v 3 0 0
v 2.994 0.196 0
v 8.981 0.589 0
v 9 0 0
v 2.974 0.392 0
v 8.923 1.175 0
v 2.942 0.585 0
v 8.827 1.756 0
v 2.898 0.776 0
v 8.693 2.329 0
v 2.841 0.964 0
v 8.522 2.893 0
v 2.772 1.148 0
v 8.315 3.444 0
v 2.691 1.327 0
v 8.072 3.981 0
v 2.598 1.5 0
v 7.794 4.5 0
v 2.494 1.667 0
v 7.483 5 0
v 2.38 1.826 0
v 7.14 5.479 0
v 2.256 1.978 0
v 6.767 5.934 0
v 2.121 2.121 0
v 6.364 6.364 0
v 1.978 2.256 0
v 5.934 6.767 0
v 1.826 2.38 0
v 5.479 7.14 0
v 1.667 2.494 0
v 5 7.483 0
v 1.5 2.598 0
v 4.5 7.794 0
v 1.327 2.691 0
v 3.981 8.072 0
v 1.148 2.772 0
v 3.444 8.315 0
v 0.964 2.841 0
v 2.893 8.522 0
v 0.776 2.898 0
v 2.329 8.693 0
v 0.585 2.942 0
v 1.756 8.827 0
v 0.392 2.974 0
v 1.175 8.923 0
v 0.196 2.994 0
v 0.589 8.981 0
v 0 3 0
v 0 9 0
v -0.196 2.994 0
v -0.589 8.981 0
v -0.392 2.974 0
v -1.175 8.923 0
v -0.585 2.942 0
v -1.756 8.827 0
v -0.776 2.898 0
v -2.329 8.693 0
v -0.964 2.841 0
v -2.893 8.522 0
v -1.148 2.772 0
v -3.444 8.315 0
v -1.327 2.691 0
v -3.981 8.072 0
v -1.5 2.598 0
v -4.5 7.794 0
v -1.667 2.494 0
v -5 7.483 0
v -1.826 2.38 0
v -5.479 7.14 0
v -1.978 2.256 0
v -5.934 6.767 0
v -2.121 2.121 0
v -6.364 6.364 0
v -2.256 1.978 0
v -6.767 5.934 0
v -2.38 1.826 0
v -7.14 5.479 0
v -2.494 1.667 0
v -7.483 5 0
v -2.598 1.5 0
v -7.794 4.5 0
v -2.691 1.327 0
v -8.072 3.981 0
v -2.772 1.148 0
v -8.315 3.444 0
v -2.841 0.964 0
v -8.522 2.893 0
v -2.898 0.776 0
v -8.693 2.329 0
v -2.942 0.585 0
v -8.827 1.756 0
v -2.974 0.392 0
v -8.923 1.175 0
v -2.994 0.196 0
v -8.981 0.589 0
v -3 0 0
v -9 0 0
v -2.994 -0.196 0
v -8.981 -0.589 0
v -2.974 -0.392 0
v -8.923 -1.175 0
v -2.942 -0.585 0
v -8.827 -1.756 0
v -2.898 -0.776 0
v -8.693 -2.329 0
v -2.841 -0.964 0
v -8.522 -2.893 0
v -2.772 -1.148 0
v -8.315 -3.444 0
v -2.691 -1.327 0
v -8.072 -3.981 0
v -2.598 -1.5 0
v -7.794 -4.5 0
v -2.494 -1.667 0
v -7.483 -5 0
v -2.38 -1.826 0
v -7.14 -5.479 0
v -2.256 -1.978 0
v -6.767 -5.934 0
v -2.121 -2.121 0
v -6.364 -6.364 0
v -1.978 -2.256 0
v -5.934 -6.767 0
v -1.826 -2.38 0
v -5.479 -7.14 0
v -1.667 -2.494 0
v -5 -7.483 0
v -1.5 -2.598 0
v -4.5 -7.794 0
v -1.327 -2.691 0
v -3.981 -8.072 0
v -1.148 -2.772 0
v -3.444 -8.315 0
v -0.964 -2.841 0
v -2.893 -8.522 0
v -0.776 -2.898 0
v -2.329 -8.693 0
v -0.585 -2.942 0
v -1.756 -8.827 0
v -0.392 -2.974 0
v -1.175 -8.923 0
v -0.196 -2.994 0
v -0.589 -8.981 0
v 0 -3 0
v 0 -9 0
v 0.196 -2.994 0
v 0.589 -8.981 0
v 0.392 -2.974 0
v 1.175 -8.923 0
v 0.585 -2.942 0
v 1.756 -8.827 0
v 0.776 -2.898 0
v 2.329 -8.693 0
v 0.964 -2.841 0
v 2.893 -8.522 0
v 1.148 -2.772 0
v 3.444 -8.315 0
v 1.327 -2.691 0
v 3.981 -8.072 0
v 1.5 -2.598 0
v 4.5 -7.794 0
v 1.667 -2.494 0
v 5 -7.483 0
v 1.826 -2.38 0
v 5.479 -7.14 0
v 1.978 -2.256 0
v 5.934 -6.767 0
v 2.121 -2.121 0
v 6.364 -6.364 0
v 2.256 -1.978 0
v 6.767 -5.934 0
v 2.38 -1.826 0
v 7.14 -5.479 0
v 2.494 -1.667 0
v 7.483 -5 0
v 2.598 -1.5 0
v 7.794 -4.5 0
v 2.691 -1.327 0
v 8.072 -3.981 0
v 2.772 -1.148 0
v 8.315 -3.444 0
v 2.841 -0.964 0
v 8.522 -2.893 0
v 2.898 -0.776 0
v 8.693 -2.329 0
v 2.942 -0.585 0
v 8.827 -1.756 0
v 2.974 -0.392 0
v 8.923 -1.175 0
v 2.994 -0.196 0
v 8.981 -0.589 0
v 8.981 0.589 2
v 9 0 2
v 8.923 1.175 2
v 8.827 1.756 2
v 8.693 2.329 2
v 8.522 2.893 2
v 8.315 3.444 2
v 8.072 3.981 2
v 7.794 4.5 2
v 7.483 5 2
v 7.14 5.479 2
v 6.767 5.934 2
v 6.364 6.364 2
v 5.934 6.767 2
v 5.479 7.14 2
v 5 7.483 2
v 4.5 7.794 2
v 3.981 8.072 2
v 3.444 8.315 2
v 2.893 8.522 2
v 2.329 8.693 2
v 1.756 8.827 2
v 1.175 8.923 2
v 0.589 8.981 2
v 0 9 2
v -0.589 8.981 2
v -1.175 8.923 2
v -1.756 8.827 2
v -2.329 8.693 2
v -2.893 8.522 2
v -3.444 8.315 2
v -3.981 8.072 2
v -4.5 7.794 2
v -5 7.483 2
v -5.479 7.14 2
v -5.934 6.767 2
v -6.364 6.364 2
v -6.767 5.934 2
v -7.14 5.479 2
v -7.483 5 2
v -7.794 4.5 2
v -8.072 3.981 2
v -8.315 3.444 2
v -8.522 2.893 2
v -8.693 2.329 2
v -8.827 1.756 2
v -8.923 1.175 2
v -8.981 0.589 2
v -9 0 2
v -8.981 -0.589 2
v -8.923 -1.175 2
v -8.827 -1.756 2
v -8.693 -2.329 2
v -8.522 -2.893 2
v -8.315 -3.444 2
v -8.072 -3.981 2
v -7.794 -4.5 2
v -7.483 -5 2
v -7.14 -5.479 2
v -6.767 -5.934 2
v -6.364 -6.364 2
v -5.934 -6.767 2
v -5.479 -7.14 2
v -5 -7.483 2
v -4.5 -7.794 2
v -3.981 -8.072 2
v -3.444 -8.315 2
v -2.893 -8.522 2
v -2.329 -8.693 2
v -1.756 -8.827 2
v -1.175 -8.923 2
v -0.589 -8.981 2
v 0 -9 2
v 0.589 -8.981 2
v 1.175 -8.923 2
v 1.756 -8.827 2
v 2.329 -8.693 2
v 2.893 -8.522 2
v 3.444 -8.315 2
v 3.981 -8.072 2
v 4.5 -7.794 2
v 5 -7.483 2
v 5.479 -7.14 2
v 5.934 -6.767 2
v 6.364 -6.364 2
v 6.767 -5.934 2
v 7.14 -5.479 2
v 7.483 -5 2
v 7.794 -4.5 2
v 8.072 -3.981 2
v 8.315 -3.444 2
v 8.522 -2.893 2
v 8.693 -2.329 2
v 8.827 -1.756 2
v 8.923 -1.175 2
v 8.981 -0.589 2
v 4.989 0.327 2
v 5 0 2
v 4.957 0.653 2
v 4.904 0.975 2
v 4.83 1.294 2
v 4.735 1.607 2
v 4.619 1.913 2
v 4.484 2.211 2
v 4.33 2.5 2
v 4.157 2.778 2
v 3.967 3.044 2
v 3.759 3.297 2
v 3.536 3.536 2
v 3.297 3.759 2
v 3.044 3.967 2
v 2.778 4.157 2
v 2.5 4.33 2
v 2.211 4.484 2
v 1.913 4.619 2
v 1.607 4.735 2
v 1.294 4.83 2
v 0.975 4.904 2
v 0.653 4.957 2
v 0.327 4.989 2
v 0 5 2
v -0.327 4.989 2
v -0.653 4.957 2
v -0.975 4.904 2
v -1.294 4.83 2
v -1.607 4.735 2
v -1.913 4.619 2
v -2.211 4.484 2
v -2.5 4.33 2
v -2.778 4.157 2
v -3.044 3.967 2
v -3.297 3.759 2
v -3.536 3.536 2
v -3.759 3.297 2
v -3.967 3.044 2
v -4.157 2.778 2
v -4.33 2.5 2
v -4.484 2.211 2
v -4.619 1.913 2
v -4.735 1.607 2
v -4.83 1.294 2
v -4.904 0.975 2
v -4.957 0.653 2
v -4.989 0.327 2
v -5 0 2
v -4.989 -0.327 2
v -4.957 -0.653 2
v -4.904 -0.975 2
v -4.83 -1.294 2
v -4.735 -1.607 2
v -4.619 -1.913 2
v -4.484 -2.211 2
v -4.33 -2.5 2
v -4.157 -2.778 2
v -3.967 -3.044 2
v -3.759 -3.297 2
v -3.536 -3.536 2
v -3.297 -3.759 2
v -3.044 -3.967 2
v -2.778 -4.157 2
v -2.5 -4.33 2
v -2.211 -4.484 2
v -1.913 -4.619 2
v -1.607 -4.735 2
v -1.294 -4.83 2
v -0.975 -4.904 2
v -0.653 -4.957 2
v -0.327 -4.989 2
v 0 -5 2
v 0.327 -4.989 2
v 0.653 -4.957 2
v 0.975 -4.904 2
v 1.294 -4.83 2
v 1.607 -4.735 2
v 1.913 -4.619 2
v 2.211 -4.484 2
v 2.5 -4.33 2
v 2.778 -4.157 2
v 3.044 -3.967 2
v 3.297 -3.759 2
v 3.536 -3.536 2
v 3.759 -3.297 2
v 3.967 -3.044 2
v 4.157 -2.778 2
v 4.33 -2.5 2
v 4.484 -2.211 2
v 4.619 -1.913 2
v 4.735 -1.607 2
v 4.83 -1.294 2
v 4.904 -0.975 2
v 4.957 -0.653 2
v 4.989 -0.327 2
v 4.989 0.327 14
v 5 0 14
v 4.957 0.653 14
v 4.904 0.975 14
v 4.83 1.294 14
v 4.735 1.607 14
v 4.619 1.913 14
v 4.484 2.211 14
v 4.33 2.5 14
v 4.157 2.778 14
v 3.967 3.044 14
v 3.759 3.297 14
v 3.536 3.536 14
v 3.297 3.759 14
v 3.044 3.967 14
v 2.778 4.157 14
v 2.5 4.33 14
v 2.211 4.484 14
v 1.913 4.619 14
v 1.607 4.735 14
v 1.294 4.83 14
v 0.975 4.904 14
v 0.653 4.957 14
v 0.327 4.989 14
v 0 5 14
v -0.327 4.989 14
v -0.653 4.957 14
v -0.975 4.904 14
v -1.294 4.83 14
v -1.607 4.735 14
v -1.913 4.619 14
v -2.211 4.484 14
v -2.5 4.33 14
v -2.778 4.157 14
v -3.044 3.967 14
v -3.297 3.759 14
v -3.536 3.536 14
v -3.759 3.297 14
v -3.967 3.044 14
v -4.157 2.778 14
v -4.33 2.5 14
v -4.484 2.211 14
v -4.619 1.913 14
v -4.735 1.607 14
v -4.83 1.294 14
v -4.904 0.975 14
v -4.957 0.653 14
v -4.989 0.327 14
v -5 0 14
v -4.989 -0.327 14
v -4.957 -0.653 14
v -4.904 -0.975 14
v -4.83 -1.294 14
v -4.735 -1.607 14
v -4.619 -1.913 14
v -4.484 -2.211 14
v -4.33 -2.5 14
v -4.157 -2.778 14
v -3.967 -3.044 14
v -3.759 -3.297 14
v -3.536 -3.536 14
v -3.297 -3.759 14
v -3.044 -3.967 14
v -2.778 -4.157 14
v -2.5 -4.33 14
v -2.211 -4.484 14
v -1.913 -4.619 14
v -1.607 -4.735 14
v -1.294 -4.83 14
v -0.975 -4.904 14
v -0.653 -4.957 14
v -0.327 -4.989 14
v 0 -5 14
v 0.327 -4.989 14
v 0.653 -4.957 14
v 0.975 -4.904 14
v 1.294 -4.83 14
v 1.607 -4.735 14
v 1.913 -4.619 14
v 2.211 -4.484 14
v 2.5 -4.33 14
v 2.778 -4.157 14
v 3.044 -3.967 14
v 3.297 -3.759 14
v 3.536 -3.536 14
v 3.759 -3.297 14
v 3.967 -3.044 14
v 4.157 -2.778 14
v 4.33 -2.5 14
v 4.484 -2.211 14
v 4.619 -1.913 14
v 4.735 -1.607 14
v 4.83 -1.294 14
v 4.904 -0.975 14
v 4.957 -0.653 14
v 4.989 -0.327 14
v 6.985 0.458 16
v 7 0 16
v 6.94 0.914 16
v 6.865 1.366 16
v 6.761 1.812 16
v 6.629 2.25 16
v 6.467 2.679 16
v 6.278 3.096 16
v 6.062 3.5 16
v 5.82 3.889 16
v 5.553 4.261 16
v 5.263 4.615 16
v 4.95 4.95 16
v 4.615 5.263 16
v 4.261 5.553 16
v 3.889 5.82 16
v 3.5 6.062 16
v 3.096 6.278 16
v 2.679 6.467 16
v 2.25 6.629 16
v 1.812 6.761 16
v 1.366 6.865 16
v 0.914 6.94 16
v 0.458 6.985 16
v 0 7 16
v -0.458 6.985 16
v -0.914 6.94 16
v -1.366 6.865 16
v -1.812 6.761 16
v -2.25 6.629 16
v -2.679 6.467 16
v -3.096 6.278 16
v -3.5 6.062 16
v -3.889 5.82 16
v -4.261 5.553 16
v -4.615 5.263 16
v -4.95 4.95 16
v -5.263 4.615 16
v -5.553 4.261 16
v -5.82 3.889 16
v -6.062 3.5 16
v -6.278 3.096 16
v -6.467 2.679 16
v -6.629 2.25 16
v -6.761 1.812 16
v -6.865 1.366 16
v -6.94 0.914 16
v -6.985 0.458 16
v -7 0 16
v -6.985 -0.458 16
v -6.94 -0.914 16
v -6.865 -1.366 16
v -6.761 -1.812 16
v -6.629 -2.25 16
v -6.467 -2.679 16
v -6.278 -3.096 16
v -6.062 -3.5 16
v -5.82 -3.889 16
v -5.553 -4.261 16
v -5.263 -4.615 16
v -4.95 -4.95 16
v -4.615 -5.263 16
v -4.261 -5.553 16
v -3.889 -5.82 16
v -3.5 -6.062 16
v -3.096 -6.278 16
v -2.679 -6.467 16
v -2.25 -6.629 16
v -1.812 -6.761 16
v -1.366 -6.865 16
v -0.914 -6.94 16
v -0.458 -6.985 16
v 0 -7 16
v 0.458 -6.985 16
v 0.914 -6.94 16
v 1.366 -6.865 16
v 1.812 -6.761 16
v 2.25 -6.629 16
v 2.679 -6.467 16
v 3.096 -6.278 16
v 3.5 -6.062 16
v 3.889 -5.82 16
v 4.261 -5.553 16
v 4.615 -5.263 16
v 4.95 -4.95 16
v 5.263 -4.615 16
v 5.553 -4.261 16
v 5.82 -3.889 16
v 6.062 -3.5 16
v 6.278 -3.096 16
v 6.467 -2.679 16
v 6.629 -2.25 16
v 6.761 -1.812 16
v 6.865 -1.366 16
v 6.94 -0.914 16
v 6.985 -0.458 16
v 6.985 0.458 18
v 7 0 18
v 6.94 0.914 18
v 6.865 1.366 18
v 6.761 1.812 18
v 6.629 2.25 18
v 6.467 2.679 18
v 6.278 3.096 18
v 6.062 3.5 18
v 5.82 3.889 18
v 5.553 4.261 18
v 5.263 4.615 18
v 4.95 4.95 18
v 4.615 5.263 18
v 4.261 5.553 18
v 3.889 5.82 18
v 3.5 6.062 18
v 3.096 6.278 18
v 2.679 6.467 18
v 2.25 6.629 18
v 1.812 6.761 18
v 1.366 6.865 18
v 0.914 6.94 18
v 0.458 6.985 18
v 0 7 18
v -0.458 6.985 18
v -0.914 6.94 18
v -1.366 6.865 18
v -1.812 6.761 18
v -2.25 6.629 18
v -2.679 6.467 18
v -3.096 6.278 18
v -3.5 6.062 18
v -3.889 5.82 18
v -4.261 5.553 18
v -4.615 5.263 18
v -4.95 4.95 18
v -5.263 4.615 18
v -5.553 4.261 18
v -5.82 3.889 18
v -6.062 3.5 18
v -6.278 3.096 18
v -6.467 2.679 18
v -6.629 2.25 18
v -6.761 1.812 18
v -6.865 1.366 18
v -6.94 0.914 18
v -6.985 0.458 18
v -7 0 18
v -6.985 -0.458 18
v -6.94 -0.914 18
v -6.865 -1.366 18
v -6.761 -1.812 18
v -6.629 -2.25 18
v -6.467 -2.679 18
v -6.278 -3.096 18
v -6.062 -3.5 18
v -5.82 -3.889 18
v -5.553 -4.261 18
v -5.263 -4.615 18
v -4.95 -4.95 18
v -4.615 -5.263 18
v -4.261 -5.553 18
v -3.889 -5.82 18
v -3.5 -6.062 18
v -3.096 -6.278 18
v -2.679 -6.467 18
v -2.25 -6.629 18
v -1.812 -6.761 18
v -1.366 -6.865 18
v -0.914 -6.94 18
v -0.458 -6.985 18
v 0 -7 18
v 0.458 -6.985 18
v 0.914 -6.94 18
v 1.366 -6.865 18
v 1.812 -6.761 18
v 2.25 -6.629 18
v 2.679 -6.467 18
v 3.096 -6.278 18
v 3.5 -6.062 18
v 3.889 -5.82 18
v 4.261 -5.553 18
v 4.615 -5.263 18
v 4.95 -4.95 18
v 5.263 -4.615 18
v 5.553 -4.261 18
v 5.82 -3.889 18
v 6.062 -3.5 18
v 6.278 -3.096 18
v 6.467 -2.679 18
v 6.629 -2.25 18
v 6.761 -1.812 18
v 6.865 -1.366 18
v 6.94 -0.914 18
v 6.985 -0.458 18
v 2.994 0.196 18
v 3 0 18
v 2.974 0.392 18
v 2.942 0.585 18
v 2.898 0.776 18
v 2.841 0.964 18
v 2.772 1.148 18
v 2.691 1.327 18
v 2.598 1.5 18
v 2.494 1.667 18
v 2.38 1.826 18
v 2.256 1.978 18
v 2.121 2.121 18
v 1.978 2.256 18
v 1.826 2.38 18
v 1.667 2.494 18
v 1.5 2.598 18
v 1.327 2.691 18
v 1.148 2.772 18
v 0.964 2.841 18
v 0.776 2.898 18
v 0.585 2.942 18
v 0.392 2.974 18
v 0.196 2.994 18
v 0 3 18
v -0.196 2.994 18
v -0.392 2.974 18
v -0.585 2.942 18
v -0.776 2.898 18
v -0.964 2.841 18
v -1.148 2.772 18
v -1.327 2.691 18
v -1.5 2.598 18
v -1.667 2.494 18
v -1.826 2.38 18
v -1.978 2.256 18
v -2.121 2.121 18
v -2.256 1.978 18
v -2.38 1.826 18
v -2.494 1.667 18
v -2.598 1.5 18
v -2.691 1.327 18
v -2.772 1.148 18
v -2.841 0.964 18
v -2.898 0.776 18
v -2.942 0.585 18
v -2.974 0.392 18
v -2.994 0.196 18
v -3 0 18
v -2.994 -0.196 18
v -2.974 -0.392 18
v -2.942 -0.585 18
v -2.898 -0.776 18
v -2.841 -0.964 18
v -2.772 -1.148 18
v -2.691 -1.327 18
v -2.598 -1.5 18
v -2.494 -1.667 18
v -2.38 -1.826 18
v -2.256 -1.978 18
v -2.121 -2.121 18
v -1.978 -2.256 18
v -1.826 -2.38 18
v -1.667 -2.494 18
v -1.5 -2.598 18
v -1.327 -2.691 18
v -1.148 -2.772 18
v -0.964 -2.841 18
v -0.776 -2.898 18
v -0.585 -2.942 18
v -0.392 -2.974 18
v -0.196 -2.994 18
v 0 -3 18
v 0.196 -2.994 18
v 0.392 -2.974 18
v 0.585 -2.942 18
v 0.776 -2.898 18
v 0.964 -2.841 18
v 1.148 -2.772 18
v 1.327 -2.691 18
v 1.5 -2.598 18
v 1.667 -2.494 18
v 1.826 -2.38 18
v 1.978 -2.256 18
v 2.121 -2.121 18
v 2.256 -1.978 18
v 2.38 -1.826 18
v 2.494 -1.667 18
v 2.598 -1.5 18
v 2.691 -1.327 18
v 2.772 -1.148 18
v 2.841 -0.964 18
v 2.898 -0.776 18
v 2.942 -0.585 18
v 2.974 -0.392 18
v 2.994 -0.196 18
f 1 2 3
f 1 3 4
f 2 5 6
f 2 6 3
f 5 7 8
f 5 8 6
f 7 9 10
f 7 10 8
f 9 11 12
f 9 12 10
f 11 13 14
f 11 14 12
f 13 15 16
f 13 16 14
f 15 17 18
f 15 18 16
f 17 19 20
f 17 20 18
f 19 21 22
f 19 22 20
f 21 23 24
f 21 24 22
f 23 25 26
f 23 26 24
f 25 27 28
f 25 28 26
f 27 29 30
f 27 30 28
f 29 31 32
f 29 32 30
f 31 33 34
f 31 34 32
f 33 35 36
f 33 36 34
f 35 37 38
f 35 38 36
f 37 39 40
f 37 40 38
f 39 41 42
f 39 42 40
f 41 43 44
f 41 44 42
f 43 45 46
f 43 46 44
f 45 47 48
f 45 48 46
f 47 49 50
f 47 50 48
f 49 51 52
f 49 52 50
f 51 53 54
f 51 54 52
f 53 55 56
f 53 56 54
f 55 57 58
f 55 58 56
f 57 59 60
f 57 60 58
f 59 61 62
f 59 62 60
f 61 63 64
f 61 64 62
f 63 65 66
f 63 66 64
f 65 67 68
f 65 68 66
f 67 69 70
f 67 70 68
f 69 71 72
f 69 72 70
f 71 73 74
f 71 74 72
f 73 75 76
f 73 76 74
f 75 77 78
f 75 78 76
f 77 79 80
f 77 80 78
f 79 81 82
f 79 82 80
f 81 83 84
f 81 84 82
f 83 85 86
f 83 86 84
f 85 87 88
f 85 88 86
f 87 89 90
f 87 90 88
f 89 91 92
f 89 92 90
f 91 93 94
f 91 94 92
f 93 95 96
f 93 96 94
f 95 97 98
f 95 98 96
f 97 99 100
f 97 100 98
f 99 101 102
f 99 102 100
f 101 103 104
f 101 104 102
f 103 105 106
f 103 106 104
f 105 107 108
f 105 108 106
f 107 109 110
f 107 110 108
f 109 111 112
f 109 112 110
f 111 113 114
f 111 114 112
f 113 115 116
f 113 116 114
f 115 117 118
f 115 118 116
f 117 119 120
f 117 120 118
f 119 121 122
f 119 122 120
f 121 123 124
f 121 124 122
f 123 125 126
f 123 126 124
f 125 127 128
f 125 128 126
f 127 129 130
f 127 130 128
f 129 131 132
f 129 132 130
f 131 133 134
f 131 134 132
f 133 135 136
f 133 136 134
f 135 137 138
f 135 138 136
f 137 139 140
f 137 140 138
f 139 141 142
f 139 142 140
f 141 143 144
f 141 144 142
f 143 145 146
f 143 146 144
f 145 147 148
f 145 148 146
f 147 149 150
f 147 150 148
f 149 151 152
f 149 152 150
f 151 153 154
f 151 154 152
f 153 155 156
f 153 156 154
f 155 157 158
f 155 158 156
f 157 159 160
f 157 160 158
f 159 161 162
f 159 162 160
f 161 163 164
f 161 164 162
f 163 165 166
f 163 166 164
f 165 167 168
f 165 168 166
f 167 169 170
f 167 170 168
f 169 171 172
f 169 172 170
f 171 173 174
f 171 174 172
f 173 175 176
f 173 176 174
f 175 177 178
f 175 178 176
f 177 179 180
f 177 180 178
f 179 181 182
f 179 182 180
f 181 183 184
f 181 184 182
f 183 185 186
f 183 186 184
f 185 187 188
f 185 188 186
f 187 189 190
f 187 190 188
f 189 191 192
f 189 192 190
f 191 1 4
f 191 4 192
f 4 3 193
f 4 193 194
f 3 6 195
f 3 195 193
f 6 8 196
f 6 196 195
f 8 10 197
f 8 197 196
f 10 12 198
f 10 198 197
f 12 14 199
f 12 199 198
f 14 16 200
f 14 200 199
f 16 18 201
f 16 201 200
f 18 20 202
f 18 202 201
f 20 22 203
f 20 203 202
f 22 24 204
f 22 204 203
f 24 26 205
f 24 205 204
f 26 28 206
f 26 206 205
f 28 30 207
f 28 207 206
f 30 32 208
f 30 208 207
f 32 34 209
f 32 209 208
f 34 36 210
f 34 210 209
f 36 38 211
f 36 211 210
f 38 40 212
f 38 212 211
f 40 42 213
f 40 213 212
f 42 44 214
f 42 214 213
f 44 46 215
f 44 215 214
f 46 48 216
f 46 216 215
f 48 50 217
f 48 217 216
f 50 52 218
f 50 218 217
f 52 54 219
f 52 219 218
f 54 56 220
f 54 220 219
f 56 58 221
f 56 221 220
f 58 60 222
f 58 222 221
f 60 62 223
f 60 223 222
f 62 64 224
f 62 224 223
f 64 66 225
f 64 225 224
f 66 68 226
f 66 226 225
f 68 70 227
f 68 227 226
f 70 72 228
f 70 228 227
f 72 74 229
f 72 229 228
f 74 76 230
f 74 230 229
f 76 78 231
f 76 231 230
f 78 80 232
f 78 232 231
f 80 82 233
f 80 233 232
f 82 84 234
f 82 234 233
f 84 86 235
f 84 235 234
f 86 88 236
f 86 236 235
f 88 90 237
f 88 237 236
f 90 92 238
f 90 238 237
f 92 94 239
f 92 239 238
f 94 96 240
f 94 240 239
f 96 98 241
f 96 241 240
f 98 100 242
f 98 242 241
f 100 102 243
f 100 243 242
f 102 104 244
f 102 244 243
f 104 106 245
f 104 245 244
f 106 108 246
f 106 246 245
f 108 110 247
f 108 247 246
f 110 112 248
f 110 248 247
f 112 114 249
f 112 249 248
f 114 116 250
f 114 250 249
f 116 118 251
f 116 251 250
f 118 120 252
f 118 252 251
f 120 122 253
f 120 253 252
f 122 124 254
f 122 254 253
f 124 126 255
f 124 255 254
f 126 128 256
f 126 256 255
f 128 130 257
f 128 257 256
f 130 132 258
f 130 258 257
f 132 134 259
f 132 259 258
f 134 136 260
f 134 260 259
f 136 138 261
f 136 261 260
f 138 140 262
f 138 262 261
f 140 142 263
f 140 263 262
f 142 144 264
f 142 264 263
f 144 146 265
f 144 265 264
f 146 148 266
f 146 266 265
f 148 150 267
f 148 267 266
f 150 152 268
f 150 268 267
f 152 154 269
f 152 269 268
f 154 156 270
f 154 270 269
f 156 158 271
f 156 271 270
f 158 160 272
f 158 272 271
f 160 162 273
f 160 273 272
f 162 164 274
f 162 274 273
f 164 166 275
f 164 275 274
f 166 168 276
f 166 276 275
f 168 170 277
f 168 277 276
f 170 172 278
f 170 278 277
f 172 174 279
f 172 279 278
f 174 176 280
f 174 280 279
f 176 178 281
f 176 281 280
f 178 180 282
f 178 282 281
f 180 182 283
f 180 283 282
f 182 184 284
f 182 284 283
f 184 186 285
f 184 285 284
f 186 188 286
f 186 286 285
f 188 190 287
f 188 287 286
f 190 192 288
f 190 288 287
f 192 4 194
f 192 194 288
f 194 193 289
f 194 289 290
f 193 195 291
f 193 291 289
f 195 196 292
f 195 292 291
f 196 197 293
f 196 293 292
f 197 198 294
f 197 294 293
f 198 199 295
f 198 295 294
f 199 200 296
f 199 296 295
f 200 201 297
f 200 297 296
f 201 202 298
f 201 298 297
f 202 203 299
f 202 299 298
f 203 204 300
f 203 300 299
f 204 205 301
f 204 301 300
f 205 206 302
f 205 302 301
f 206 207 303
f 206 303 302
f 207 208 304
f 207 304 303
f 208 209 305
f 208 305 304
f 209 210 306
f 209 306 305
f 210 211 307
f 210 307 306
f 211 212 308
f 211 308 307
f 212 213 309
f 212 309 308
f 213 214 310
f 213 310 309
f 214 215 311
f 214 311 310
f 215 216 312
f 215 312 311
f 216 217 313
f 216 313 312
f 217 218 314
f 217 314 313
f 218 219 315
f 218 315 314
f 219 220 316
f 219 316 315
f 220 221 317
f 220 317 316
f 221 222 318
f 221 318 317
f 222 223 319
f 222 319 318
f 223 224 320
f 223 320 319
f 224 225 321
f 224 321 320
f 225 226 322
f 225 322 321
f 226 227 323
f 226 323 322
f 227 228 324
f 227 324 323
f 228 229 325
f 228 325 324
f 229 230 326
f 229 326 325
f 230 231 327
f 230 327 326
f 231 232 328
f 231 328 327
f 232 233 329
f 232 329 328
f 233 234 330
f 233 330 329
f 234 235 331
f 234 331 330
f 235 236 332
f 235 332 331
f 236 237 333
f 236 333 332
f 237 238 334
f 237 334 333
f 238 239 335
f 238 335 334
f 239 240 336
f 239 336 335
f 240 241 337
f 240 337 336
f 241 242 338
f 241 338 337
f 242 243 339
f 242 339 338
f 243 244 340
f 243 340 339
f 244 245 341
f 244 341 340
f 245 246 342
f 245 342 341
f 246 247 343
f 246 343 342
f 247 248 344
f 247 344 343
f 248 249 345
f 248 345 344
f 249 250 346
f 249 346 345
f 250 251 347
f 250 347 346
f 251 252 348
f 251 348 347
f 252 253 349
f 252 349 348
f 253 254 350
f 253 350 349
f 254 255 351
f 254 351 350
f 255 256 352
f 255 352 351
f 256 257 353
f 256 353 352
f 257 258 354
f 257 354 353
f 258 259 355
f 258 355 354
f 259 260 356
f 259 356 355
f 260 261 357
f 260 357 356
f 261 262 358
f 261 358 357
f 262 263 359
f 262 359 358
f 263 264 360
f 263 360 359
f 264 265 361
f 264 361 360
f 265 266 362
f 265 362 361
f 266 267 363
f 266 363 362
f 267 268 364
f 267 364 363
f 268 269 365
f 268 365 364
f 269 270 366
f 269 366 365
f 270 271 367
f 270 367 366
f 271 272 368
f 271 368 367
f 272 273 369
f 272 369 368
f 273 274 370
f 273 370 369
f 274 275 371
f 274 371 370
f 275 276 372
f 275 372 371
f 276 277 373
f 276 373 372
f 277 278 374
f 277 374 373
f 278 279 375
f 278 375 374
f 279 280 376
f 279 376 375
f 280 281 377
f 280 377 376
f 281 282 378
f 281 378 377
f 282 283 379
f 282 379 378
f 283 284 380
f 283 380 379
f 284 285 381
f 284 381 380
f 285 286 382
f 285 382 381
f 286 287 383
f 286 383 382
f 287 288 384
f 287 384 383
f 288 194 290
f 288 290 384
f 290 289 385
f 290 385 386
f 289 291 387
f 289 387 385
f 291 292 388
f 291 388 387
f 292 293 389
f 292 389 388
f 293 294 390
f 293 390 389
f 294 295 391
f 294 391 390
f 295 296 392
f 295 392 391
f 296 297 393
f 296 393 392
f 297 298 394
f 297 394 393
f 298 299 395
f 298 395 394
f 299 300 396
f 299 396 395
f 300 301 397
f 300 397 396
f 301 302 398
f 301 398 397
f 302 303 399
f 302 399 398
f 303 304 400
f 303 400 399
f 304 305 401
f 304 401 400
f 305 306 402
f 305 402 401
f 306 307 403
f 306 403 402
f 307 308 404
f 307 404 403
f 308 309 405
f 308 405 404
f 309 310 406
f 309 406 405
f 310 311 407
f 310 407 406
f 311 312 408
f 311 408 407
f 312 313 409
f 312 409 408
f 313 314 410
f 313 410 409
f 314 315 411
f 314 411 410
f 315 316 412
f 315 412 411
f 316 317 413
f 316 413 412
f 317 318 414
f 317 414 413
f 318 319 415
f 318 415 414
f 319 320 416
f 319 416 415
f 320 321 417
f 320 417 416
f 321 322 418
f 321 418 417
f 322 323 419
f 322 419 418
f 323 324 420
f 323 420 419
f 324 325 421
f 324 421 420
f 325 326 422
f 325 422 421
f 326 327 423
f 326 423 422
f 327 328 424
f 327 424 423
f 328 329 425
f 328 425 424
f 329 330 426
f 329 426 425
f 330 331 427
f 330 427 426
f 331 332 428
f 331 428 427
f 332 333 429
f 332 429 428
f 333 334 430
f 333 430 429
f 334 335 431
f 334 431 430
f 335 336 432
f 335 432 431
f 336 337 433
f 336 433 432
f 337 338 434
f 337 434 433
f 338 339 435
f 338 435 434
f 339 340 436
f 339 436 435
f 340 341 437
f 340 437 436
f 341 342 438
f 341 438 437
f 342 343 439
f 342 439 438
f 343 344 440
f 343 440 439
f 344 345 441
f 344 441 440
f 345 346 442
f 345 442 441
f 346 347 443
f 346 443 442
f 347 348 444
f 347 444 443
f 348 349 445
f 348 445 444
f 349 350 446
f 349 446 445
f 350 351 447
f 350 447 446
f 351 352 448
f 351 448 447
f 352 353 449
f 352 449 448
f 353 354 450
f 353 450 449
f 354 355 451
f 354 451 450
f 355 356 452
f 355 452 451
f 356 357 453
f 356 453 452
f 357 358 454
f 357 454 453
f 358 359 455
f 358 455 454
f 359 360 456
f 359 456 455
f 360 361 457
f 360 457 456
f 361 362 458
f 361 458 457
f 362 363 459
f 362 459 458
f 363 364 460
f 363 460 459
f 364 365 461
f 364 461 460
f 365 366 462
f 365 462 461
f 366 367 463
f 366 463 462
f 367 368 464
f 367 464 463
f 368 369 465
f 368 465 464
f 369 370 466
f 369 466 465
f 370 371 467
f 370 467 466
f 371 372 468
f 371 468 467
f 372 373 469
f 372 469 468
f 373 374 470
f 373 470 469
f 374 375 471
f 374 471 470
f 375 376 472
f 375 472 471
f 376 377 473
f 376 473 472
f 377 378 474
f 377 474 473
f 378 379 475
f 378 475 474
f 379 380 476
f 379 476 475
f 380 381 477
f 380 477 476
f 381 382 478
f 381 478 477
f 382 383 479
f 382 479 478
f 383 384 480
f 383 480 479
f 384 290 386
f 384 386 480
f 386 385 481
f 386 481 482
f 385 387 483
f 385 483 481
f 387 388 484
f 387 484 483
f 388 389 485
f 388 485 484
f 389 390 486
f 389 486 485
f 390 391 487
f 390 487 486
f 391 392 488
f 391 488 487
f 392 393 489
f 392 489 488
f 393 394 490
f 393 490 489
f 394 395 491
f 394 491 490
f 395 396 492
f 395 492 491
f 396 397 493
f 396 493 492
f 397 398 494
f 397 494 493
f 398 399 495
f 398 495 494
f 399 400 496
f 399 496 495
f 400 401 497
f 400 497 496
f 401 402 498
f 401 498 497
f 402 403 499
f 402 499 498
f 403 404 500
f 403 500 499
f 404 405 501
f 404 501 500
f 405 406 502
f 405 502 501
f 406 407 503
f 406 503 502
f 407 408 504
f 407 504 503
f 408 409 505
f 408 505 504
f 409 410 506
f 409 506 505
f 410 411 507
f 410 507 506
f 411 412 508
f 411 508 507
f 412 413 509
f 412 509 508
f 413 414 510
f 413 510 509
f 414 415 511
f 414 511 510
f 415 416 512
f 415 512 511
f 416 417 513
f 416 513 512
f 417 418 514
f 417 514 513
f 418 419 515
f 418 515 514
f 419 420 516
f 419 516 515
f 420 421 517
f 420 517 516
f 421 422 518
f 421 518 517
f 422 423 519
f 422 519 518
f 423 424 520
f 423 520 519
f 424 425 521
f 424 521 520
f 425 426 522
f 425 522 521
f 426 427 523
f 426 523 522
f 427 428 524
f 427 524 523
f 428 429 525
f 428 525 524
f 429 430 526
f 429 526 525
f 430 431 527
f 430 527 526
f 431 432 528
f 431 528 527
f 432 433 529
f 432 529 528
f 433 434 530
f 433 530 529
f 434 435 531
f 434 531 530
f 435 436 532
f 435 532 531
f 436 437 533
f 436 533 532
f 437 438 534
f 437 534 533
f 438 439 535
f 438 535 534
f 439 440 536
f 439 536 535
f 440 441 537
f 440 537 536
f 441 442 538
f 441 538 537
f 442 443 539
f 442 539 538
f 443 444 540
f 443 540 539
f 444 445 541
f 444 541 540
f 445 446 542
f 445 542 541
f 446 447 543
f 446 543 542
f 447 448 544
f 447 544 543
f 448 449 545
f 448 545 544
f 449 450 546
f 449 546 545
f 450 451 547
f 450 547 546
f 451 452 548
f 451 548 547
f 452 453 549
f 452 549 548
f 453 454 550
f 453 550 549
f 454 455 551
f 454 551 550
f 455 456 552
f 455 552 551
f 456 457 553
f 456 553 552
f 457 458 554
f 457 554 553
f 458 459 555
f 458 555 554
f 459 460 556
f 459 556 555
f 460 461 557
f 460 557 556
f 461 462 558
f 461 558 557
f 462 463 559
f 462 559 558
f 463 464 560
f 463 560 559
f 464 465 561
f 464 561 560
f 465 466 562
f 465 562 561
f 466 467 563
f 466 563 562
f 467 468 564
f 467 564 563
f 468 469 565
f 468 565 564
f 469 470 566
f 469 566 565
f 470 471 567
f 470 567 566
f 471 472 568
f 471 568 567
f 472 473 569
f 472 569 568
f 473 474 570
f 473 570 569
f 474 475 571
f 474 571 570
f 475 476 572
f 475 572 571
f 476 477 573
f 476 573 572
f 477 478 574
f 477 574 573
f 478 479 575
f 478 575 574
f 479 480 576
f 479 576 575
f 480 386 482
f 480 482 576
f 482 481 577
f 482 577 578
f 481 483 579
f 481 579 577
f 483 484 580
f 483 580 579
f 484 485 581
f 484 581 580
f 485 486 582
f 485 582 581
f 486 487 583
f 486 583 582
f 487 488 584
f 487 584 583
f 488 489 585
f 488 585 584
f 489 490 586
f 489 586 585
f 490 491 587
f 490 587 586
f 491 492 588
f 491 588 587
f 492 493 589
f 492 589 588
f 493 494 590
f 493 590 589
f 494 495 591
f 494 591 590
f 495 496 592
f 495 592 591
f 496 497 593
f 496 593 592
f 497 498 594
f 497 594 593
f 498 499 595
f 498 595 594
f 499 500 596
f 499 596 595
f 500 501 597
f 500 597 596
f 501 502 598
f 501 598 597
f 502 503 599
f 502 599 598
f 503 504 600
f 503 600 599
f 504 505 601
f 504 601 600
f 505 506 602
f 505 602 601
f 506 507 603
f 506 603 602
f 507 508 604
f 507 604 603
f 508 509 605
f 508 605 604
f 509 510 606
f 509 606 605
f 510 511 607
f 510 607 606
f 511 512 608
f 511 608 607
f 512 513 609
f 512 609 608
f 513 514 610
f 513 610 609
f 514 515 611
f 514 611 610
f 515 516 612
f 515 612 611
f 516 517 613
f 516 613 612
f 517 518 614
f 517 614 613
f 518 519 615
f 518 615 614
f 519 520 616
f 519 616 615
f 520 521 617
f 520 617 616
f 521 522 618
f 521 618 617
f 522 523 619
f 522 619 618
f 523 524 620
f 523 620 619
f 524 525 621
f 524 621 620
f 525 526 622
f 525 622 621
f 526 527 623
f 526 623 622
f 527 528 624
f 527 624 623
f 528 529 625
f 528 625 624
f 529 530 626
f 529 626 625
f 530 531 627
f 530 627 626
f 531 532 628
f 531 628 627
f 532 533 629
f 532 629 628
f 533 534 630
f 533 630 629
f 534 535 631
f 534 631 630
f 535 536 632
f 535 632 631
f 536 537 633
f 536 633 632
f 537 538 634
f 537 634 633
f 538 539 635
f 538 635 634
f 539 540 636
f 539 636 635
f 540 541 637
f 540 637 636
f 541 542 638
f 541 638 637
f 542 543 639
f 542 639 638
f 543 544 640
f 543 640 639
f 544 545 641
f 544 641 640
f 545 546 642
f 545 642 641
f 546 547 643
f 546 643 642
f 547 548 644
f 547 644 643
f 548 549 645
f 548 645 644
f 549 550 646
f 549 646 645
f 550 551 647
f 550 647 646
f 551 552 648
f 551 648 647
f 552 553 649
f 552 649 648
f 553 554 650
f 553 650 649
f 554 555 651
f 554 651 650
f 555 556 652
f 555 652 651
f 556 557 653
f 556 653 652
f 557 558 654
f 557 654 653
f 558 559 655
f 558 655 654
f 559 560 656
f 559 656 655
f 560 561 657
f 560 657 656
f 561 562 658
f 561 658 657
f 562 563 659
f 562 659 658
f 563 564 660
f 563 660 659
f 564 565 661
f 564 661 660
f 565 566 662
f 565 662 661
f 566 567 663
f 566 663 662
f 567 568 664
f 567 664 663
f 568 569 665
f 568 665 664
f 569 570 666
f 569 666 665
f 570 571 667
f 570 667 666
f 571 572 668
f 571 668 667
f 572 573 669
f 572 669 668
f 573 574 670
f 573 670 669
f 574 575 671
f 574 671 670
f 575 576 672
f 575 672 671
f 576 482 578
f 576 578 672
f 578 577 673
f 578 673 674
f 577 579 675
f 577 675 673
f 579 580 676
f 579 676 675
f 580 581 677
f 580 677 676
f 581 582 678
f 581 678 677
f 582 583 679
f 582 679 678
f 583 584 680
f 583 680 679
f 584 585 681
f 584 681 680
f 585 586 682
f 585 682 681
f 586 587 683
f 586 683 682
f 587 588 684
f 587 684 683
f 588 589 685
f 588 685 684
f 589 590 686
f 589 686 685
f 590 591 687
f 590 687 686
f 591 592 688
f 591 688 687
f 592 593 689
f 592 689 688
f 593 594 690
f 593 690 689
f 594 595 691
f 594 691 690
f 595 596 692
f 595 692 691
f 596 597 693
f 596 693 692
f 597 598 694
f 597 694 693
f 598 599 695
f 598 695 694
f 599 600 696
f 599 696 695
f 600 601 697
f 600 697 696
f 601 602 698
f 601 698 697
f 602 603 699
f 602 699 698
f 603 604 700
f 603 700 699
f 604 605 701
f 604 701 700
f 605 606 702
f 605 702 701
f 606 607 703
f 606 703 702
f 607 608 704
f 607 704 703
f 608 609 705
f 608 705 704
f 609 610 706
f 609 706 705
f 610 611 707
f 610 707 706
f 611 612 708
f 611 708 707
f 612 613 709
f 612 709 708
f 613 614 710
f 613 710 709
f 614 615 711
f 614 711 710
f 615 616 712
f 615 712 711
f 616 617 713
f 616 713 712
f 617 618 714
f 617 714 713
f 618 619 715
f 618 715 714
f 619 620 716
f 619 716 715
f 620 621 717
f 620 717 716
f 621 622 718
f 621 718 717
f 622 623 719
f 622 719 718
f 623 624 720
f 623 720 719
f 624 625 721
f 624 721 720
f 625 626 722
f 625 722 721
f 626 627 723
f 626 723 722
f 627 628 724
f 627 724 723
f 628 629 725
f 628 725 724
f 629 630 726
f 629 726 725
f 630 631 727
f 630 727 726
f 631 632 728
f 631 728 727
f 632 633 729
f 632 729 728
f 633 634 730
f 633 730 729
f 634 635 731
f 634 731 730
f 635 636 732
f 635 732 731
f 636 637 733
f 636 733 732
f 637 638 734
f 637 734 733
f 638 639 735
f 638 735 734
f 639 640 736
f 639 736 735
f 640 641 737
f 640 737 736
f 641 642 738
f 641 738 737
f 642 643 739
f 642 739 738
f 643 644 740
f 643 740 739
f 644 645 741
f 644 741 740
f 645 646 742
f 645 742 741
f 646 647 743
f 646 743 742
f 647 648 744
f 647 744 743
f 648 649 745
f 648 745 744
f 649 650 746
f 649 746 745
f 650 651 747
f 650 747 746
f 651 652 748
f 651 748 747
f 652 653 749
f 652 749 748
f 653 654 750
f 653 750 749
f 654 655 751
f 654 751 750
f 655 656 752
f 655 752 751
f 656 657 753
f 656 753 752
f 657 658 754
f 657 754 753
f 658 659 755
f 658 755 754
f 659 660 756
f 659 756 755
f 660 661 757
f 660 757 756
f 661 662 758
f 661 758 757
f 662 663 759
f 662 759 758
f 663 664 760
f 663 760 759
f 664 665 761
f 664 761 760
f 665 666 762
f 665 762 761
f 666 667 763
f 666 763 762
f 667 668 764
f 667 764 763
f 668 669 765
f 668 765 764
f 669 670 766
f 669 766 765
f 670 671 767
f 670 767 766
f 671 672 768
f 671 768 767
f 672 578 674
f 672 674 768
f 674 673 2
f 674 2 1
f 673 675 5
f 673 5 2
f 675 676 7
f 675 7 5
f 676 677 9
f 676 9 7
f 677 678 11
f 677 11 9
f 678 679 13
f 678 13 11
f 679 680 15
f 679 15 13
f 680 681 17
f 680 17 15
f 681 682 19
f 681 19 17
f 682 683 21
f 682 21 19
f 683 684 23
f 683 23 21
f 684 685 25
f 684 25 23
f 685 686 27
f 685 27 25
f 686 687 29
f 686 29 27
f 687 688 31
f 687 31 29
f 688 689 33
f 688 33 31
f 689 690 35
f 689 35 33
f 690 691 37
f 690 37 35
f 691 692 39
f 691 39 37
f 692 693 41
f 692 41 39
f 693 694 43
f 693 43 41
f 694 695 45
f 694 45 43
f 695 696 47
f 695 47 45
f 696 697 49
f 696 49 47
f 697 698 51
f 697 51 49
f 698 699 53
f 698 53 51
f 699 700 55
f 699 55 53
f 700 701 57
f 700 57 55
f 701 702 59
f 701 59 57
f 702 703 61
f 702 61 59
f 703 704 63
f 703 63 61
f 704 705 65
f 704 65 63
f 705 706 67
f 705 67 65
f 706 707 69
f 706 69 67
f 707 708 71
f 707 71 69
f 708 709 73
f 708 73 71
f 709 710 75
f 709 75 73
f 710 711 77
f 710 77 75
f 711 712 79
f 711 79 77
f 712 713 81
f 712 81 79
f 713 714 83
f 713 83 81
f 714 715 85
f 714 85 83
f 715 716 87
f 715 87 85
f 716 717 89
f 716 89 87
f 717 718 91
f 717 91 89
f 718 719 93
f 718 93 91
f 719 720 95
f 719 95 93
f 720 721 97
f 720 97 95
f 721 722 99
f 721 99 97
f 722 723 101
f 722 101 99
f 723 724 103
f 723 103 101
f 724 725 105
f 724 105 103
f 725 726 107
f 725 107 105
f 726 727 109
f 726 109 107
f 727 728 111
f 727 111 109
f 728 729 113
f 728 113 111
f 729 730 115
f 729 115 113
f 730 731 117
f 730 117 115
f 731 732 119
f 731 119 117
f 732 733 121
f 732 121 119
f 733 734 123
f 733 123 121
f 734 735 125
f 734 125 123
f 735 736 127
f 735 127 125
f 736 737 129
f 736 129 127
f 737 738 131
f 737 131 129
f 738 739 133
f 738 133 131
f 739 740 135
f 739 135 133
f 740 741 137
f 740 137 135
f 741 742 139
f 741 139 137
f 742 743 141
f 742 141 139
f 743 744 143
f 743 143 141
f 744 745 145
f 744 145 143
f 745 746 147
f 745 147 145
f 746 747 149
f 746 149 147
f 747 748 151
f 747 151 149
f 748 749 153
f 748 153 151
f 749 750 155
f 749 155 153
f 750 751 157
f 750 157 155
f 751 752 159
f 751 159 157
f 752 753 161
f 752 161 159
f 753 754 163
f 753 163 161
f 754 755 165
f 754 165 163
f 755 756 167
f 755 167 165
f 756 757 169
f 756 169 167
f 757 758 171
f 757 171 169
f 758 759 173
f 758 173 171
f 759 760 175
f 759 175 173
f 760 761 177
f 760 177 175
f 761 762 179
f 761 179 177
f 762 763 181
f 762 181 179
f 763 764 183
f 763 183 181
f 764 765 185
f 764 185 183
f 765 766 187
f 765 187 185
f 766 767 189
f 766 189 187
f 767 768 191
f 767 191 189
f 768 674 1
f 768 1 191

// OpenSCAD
// Original MechIntel educational model. CC0-1.0. Units: mm.
// Not a standardized or load-rated component.
$fn=96;
// Section points: [radius, height], mm. Edit to change the profile.
section=[[3, 0], [9, 0], [9, 2], [5, 2], [5, 14], [7, 16], [7, 18], [3, 18]];
rotate_extrude($fn=96) polygon(points=section);
